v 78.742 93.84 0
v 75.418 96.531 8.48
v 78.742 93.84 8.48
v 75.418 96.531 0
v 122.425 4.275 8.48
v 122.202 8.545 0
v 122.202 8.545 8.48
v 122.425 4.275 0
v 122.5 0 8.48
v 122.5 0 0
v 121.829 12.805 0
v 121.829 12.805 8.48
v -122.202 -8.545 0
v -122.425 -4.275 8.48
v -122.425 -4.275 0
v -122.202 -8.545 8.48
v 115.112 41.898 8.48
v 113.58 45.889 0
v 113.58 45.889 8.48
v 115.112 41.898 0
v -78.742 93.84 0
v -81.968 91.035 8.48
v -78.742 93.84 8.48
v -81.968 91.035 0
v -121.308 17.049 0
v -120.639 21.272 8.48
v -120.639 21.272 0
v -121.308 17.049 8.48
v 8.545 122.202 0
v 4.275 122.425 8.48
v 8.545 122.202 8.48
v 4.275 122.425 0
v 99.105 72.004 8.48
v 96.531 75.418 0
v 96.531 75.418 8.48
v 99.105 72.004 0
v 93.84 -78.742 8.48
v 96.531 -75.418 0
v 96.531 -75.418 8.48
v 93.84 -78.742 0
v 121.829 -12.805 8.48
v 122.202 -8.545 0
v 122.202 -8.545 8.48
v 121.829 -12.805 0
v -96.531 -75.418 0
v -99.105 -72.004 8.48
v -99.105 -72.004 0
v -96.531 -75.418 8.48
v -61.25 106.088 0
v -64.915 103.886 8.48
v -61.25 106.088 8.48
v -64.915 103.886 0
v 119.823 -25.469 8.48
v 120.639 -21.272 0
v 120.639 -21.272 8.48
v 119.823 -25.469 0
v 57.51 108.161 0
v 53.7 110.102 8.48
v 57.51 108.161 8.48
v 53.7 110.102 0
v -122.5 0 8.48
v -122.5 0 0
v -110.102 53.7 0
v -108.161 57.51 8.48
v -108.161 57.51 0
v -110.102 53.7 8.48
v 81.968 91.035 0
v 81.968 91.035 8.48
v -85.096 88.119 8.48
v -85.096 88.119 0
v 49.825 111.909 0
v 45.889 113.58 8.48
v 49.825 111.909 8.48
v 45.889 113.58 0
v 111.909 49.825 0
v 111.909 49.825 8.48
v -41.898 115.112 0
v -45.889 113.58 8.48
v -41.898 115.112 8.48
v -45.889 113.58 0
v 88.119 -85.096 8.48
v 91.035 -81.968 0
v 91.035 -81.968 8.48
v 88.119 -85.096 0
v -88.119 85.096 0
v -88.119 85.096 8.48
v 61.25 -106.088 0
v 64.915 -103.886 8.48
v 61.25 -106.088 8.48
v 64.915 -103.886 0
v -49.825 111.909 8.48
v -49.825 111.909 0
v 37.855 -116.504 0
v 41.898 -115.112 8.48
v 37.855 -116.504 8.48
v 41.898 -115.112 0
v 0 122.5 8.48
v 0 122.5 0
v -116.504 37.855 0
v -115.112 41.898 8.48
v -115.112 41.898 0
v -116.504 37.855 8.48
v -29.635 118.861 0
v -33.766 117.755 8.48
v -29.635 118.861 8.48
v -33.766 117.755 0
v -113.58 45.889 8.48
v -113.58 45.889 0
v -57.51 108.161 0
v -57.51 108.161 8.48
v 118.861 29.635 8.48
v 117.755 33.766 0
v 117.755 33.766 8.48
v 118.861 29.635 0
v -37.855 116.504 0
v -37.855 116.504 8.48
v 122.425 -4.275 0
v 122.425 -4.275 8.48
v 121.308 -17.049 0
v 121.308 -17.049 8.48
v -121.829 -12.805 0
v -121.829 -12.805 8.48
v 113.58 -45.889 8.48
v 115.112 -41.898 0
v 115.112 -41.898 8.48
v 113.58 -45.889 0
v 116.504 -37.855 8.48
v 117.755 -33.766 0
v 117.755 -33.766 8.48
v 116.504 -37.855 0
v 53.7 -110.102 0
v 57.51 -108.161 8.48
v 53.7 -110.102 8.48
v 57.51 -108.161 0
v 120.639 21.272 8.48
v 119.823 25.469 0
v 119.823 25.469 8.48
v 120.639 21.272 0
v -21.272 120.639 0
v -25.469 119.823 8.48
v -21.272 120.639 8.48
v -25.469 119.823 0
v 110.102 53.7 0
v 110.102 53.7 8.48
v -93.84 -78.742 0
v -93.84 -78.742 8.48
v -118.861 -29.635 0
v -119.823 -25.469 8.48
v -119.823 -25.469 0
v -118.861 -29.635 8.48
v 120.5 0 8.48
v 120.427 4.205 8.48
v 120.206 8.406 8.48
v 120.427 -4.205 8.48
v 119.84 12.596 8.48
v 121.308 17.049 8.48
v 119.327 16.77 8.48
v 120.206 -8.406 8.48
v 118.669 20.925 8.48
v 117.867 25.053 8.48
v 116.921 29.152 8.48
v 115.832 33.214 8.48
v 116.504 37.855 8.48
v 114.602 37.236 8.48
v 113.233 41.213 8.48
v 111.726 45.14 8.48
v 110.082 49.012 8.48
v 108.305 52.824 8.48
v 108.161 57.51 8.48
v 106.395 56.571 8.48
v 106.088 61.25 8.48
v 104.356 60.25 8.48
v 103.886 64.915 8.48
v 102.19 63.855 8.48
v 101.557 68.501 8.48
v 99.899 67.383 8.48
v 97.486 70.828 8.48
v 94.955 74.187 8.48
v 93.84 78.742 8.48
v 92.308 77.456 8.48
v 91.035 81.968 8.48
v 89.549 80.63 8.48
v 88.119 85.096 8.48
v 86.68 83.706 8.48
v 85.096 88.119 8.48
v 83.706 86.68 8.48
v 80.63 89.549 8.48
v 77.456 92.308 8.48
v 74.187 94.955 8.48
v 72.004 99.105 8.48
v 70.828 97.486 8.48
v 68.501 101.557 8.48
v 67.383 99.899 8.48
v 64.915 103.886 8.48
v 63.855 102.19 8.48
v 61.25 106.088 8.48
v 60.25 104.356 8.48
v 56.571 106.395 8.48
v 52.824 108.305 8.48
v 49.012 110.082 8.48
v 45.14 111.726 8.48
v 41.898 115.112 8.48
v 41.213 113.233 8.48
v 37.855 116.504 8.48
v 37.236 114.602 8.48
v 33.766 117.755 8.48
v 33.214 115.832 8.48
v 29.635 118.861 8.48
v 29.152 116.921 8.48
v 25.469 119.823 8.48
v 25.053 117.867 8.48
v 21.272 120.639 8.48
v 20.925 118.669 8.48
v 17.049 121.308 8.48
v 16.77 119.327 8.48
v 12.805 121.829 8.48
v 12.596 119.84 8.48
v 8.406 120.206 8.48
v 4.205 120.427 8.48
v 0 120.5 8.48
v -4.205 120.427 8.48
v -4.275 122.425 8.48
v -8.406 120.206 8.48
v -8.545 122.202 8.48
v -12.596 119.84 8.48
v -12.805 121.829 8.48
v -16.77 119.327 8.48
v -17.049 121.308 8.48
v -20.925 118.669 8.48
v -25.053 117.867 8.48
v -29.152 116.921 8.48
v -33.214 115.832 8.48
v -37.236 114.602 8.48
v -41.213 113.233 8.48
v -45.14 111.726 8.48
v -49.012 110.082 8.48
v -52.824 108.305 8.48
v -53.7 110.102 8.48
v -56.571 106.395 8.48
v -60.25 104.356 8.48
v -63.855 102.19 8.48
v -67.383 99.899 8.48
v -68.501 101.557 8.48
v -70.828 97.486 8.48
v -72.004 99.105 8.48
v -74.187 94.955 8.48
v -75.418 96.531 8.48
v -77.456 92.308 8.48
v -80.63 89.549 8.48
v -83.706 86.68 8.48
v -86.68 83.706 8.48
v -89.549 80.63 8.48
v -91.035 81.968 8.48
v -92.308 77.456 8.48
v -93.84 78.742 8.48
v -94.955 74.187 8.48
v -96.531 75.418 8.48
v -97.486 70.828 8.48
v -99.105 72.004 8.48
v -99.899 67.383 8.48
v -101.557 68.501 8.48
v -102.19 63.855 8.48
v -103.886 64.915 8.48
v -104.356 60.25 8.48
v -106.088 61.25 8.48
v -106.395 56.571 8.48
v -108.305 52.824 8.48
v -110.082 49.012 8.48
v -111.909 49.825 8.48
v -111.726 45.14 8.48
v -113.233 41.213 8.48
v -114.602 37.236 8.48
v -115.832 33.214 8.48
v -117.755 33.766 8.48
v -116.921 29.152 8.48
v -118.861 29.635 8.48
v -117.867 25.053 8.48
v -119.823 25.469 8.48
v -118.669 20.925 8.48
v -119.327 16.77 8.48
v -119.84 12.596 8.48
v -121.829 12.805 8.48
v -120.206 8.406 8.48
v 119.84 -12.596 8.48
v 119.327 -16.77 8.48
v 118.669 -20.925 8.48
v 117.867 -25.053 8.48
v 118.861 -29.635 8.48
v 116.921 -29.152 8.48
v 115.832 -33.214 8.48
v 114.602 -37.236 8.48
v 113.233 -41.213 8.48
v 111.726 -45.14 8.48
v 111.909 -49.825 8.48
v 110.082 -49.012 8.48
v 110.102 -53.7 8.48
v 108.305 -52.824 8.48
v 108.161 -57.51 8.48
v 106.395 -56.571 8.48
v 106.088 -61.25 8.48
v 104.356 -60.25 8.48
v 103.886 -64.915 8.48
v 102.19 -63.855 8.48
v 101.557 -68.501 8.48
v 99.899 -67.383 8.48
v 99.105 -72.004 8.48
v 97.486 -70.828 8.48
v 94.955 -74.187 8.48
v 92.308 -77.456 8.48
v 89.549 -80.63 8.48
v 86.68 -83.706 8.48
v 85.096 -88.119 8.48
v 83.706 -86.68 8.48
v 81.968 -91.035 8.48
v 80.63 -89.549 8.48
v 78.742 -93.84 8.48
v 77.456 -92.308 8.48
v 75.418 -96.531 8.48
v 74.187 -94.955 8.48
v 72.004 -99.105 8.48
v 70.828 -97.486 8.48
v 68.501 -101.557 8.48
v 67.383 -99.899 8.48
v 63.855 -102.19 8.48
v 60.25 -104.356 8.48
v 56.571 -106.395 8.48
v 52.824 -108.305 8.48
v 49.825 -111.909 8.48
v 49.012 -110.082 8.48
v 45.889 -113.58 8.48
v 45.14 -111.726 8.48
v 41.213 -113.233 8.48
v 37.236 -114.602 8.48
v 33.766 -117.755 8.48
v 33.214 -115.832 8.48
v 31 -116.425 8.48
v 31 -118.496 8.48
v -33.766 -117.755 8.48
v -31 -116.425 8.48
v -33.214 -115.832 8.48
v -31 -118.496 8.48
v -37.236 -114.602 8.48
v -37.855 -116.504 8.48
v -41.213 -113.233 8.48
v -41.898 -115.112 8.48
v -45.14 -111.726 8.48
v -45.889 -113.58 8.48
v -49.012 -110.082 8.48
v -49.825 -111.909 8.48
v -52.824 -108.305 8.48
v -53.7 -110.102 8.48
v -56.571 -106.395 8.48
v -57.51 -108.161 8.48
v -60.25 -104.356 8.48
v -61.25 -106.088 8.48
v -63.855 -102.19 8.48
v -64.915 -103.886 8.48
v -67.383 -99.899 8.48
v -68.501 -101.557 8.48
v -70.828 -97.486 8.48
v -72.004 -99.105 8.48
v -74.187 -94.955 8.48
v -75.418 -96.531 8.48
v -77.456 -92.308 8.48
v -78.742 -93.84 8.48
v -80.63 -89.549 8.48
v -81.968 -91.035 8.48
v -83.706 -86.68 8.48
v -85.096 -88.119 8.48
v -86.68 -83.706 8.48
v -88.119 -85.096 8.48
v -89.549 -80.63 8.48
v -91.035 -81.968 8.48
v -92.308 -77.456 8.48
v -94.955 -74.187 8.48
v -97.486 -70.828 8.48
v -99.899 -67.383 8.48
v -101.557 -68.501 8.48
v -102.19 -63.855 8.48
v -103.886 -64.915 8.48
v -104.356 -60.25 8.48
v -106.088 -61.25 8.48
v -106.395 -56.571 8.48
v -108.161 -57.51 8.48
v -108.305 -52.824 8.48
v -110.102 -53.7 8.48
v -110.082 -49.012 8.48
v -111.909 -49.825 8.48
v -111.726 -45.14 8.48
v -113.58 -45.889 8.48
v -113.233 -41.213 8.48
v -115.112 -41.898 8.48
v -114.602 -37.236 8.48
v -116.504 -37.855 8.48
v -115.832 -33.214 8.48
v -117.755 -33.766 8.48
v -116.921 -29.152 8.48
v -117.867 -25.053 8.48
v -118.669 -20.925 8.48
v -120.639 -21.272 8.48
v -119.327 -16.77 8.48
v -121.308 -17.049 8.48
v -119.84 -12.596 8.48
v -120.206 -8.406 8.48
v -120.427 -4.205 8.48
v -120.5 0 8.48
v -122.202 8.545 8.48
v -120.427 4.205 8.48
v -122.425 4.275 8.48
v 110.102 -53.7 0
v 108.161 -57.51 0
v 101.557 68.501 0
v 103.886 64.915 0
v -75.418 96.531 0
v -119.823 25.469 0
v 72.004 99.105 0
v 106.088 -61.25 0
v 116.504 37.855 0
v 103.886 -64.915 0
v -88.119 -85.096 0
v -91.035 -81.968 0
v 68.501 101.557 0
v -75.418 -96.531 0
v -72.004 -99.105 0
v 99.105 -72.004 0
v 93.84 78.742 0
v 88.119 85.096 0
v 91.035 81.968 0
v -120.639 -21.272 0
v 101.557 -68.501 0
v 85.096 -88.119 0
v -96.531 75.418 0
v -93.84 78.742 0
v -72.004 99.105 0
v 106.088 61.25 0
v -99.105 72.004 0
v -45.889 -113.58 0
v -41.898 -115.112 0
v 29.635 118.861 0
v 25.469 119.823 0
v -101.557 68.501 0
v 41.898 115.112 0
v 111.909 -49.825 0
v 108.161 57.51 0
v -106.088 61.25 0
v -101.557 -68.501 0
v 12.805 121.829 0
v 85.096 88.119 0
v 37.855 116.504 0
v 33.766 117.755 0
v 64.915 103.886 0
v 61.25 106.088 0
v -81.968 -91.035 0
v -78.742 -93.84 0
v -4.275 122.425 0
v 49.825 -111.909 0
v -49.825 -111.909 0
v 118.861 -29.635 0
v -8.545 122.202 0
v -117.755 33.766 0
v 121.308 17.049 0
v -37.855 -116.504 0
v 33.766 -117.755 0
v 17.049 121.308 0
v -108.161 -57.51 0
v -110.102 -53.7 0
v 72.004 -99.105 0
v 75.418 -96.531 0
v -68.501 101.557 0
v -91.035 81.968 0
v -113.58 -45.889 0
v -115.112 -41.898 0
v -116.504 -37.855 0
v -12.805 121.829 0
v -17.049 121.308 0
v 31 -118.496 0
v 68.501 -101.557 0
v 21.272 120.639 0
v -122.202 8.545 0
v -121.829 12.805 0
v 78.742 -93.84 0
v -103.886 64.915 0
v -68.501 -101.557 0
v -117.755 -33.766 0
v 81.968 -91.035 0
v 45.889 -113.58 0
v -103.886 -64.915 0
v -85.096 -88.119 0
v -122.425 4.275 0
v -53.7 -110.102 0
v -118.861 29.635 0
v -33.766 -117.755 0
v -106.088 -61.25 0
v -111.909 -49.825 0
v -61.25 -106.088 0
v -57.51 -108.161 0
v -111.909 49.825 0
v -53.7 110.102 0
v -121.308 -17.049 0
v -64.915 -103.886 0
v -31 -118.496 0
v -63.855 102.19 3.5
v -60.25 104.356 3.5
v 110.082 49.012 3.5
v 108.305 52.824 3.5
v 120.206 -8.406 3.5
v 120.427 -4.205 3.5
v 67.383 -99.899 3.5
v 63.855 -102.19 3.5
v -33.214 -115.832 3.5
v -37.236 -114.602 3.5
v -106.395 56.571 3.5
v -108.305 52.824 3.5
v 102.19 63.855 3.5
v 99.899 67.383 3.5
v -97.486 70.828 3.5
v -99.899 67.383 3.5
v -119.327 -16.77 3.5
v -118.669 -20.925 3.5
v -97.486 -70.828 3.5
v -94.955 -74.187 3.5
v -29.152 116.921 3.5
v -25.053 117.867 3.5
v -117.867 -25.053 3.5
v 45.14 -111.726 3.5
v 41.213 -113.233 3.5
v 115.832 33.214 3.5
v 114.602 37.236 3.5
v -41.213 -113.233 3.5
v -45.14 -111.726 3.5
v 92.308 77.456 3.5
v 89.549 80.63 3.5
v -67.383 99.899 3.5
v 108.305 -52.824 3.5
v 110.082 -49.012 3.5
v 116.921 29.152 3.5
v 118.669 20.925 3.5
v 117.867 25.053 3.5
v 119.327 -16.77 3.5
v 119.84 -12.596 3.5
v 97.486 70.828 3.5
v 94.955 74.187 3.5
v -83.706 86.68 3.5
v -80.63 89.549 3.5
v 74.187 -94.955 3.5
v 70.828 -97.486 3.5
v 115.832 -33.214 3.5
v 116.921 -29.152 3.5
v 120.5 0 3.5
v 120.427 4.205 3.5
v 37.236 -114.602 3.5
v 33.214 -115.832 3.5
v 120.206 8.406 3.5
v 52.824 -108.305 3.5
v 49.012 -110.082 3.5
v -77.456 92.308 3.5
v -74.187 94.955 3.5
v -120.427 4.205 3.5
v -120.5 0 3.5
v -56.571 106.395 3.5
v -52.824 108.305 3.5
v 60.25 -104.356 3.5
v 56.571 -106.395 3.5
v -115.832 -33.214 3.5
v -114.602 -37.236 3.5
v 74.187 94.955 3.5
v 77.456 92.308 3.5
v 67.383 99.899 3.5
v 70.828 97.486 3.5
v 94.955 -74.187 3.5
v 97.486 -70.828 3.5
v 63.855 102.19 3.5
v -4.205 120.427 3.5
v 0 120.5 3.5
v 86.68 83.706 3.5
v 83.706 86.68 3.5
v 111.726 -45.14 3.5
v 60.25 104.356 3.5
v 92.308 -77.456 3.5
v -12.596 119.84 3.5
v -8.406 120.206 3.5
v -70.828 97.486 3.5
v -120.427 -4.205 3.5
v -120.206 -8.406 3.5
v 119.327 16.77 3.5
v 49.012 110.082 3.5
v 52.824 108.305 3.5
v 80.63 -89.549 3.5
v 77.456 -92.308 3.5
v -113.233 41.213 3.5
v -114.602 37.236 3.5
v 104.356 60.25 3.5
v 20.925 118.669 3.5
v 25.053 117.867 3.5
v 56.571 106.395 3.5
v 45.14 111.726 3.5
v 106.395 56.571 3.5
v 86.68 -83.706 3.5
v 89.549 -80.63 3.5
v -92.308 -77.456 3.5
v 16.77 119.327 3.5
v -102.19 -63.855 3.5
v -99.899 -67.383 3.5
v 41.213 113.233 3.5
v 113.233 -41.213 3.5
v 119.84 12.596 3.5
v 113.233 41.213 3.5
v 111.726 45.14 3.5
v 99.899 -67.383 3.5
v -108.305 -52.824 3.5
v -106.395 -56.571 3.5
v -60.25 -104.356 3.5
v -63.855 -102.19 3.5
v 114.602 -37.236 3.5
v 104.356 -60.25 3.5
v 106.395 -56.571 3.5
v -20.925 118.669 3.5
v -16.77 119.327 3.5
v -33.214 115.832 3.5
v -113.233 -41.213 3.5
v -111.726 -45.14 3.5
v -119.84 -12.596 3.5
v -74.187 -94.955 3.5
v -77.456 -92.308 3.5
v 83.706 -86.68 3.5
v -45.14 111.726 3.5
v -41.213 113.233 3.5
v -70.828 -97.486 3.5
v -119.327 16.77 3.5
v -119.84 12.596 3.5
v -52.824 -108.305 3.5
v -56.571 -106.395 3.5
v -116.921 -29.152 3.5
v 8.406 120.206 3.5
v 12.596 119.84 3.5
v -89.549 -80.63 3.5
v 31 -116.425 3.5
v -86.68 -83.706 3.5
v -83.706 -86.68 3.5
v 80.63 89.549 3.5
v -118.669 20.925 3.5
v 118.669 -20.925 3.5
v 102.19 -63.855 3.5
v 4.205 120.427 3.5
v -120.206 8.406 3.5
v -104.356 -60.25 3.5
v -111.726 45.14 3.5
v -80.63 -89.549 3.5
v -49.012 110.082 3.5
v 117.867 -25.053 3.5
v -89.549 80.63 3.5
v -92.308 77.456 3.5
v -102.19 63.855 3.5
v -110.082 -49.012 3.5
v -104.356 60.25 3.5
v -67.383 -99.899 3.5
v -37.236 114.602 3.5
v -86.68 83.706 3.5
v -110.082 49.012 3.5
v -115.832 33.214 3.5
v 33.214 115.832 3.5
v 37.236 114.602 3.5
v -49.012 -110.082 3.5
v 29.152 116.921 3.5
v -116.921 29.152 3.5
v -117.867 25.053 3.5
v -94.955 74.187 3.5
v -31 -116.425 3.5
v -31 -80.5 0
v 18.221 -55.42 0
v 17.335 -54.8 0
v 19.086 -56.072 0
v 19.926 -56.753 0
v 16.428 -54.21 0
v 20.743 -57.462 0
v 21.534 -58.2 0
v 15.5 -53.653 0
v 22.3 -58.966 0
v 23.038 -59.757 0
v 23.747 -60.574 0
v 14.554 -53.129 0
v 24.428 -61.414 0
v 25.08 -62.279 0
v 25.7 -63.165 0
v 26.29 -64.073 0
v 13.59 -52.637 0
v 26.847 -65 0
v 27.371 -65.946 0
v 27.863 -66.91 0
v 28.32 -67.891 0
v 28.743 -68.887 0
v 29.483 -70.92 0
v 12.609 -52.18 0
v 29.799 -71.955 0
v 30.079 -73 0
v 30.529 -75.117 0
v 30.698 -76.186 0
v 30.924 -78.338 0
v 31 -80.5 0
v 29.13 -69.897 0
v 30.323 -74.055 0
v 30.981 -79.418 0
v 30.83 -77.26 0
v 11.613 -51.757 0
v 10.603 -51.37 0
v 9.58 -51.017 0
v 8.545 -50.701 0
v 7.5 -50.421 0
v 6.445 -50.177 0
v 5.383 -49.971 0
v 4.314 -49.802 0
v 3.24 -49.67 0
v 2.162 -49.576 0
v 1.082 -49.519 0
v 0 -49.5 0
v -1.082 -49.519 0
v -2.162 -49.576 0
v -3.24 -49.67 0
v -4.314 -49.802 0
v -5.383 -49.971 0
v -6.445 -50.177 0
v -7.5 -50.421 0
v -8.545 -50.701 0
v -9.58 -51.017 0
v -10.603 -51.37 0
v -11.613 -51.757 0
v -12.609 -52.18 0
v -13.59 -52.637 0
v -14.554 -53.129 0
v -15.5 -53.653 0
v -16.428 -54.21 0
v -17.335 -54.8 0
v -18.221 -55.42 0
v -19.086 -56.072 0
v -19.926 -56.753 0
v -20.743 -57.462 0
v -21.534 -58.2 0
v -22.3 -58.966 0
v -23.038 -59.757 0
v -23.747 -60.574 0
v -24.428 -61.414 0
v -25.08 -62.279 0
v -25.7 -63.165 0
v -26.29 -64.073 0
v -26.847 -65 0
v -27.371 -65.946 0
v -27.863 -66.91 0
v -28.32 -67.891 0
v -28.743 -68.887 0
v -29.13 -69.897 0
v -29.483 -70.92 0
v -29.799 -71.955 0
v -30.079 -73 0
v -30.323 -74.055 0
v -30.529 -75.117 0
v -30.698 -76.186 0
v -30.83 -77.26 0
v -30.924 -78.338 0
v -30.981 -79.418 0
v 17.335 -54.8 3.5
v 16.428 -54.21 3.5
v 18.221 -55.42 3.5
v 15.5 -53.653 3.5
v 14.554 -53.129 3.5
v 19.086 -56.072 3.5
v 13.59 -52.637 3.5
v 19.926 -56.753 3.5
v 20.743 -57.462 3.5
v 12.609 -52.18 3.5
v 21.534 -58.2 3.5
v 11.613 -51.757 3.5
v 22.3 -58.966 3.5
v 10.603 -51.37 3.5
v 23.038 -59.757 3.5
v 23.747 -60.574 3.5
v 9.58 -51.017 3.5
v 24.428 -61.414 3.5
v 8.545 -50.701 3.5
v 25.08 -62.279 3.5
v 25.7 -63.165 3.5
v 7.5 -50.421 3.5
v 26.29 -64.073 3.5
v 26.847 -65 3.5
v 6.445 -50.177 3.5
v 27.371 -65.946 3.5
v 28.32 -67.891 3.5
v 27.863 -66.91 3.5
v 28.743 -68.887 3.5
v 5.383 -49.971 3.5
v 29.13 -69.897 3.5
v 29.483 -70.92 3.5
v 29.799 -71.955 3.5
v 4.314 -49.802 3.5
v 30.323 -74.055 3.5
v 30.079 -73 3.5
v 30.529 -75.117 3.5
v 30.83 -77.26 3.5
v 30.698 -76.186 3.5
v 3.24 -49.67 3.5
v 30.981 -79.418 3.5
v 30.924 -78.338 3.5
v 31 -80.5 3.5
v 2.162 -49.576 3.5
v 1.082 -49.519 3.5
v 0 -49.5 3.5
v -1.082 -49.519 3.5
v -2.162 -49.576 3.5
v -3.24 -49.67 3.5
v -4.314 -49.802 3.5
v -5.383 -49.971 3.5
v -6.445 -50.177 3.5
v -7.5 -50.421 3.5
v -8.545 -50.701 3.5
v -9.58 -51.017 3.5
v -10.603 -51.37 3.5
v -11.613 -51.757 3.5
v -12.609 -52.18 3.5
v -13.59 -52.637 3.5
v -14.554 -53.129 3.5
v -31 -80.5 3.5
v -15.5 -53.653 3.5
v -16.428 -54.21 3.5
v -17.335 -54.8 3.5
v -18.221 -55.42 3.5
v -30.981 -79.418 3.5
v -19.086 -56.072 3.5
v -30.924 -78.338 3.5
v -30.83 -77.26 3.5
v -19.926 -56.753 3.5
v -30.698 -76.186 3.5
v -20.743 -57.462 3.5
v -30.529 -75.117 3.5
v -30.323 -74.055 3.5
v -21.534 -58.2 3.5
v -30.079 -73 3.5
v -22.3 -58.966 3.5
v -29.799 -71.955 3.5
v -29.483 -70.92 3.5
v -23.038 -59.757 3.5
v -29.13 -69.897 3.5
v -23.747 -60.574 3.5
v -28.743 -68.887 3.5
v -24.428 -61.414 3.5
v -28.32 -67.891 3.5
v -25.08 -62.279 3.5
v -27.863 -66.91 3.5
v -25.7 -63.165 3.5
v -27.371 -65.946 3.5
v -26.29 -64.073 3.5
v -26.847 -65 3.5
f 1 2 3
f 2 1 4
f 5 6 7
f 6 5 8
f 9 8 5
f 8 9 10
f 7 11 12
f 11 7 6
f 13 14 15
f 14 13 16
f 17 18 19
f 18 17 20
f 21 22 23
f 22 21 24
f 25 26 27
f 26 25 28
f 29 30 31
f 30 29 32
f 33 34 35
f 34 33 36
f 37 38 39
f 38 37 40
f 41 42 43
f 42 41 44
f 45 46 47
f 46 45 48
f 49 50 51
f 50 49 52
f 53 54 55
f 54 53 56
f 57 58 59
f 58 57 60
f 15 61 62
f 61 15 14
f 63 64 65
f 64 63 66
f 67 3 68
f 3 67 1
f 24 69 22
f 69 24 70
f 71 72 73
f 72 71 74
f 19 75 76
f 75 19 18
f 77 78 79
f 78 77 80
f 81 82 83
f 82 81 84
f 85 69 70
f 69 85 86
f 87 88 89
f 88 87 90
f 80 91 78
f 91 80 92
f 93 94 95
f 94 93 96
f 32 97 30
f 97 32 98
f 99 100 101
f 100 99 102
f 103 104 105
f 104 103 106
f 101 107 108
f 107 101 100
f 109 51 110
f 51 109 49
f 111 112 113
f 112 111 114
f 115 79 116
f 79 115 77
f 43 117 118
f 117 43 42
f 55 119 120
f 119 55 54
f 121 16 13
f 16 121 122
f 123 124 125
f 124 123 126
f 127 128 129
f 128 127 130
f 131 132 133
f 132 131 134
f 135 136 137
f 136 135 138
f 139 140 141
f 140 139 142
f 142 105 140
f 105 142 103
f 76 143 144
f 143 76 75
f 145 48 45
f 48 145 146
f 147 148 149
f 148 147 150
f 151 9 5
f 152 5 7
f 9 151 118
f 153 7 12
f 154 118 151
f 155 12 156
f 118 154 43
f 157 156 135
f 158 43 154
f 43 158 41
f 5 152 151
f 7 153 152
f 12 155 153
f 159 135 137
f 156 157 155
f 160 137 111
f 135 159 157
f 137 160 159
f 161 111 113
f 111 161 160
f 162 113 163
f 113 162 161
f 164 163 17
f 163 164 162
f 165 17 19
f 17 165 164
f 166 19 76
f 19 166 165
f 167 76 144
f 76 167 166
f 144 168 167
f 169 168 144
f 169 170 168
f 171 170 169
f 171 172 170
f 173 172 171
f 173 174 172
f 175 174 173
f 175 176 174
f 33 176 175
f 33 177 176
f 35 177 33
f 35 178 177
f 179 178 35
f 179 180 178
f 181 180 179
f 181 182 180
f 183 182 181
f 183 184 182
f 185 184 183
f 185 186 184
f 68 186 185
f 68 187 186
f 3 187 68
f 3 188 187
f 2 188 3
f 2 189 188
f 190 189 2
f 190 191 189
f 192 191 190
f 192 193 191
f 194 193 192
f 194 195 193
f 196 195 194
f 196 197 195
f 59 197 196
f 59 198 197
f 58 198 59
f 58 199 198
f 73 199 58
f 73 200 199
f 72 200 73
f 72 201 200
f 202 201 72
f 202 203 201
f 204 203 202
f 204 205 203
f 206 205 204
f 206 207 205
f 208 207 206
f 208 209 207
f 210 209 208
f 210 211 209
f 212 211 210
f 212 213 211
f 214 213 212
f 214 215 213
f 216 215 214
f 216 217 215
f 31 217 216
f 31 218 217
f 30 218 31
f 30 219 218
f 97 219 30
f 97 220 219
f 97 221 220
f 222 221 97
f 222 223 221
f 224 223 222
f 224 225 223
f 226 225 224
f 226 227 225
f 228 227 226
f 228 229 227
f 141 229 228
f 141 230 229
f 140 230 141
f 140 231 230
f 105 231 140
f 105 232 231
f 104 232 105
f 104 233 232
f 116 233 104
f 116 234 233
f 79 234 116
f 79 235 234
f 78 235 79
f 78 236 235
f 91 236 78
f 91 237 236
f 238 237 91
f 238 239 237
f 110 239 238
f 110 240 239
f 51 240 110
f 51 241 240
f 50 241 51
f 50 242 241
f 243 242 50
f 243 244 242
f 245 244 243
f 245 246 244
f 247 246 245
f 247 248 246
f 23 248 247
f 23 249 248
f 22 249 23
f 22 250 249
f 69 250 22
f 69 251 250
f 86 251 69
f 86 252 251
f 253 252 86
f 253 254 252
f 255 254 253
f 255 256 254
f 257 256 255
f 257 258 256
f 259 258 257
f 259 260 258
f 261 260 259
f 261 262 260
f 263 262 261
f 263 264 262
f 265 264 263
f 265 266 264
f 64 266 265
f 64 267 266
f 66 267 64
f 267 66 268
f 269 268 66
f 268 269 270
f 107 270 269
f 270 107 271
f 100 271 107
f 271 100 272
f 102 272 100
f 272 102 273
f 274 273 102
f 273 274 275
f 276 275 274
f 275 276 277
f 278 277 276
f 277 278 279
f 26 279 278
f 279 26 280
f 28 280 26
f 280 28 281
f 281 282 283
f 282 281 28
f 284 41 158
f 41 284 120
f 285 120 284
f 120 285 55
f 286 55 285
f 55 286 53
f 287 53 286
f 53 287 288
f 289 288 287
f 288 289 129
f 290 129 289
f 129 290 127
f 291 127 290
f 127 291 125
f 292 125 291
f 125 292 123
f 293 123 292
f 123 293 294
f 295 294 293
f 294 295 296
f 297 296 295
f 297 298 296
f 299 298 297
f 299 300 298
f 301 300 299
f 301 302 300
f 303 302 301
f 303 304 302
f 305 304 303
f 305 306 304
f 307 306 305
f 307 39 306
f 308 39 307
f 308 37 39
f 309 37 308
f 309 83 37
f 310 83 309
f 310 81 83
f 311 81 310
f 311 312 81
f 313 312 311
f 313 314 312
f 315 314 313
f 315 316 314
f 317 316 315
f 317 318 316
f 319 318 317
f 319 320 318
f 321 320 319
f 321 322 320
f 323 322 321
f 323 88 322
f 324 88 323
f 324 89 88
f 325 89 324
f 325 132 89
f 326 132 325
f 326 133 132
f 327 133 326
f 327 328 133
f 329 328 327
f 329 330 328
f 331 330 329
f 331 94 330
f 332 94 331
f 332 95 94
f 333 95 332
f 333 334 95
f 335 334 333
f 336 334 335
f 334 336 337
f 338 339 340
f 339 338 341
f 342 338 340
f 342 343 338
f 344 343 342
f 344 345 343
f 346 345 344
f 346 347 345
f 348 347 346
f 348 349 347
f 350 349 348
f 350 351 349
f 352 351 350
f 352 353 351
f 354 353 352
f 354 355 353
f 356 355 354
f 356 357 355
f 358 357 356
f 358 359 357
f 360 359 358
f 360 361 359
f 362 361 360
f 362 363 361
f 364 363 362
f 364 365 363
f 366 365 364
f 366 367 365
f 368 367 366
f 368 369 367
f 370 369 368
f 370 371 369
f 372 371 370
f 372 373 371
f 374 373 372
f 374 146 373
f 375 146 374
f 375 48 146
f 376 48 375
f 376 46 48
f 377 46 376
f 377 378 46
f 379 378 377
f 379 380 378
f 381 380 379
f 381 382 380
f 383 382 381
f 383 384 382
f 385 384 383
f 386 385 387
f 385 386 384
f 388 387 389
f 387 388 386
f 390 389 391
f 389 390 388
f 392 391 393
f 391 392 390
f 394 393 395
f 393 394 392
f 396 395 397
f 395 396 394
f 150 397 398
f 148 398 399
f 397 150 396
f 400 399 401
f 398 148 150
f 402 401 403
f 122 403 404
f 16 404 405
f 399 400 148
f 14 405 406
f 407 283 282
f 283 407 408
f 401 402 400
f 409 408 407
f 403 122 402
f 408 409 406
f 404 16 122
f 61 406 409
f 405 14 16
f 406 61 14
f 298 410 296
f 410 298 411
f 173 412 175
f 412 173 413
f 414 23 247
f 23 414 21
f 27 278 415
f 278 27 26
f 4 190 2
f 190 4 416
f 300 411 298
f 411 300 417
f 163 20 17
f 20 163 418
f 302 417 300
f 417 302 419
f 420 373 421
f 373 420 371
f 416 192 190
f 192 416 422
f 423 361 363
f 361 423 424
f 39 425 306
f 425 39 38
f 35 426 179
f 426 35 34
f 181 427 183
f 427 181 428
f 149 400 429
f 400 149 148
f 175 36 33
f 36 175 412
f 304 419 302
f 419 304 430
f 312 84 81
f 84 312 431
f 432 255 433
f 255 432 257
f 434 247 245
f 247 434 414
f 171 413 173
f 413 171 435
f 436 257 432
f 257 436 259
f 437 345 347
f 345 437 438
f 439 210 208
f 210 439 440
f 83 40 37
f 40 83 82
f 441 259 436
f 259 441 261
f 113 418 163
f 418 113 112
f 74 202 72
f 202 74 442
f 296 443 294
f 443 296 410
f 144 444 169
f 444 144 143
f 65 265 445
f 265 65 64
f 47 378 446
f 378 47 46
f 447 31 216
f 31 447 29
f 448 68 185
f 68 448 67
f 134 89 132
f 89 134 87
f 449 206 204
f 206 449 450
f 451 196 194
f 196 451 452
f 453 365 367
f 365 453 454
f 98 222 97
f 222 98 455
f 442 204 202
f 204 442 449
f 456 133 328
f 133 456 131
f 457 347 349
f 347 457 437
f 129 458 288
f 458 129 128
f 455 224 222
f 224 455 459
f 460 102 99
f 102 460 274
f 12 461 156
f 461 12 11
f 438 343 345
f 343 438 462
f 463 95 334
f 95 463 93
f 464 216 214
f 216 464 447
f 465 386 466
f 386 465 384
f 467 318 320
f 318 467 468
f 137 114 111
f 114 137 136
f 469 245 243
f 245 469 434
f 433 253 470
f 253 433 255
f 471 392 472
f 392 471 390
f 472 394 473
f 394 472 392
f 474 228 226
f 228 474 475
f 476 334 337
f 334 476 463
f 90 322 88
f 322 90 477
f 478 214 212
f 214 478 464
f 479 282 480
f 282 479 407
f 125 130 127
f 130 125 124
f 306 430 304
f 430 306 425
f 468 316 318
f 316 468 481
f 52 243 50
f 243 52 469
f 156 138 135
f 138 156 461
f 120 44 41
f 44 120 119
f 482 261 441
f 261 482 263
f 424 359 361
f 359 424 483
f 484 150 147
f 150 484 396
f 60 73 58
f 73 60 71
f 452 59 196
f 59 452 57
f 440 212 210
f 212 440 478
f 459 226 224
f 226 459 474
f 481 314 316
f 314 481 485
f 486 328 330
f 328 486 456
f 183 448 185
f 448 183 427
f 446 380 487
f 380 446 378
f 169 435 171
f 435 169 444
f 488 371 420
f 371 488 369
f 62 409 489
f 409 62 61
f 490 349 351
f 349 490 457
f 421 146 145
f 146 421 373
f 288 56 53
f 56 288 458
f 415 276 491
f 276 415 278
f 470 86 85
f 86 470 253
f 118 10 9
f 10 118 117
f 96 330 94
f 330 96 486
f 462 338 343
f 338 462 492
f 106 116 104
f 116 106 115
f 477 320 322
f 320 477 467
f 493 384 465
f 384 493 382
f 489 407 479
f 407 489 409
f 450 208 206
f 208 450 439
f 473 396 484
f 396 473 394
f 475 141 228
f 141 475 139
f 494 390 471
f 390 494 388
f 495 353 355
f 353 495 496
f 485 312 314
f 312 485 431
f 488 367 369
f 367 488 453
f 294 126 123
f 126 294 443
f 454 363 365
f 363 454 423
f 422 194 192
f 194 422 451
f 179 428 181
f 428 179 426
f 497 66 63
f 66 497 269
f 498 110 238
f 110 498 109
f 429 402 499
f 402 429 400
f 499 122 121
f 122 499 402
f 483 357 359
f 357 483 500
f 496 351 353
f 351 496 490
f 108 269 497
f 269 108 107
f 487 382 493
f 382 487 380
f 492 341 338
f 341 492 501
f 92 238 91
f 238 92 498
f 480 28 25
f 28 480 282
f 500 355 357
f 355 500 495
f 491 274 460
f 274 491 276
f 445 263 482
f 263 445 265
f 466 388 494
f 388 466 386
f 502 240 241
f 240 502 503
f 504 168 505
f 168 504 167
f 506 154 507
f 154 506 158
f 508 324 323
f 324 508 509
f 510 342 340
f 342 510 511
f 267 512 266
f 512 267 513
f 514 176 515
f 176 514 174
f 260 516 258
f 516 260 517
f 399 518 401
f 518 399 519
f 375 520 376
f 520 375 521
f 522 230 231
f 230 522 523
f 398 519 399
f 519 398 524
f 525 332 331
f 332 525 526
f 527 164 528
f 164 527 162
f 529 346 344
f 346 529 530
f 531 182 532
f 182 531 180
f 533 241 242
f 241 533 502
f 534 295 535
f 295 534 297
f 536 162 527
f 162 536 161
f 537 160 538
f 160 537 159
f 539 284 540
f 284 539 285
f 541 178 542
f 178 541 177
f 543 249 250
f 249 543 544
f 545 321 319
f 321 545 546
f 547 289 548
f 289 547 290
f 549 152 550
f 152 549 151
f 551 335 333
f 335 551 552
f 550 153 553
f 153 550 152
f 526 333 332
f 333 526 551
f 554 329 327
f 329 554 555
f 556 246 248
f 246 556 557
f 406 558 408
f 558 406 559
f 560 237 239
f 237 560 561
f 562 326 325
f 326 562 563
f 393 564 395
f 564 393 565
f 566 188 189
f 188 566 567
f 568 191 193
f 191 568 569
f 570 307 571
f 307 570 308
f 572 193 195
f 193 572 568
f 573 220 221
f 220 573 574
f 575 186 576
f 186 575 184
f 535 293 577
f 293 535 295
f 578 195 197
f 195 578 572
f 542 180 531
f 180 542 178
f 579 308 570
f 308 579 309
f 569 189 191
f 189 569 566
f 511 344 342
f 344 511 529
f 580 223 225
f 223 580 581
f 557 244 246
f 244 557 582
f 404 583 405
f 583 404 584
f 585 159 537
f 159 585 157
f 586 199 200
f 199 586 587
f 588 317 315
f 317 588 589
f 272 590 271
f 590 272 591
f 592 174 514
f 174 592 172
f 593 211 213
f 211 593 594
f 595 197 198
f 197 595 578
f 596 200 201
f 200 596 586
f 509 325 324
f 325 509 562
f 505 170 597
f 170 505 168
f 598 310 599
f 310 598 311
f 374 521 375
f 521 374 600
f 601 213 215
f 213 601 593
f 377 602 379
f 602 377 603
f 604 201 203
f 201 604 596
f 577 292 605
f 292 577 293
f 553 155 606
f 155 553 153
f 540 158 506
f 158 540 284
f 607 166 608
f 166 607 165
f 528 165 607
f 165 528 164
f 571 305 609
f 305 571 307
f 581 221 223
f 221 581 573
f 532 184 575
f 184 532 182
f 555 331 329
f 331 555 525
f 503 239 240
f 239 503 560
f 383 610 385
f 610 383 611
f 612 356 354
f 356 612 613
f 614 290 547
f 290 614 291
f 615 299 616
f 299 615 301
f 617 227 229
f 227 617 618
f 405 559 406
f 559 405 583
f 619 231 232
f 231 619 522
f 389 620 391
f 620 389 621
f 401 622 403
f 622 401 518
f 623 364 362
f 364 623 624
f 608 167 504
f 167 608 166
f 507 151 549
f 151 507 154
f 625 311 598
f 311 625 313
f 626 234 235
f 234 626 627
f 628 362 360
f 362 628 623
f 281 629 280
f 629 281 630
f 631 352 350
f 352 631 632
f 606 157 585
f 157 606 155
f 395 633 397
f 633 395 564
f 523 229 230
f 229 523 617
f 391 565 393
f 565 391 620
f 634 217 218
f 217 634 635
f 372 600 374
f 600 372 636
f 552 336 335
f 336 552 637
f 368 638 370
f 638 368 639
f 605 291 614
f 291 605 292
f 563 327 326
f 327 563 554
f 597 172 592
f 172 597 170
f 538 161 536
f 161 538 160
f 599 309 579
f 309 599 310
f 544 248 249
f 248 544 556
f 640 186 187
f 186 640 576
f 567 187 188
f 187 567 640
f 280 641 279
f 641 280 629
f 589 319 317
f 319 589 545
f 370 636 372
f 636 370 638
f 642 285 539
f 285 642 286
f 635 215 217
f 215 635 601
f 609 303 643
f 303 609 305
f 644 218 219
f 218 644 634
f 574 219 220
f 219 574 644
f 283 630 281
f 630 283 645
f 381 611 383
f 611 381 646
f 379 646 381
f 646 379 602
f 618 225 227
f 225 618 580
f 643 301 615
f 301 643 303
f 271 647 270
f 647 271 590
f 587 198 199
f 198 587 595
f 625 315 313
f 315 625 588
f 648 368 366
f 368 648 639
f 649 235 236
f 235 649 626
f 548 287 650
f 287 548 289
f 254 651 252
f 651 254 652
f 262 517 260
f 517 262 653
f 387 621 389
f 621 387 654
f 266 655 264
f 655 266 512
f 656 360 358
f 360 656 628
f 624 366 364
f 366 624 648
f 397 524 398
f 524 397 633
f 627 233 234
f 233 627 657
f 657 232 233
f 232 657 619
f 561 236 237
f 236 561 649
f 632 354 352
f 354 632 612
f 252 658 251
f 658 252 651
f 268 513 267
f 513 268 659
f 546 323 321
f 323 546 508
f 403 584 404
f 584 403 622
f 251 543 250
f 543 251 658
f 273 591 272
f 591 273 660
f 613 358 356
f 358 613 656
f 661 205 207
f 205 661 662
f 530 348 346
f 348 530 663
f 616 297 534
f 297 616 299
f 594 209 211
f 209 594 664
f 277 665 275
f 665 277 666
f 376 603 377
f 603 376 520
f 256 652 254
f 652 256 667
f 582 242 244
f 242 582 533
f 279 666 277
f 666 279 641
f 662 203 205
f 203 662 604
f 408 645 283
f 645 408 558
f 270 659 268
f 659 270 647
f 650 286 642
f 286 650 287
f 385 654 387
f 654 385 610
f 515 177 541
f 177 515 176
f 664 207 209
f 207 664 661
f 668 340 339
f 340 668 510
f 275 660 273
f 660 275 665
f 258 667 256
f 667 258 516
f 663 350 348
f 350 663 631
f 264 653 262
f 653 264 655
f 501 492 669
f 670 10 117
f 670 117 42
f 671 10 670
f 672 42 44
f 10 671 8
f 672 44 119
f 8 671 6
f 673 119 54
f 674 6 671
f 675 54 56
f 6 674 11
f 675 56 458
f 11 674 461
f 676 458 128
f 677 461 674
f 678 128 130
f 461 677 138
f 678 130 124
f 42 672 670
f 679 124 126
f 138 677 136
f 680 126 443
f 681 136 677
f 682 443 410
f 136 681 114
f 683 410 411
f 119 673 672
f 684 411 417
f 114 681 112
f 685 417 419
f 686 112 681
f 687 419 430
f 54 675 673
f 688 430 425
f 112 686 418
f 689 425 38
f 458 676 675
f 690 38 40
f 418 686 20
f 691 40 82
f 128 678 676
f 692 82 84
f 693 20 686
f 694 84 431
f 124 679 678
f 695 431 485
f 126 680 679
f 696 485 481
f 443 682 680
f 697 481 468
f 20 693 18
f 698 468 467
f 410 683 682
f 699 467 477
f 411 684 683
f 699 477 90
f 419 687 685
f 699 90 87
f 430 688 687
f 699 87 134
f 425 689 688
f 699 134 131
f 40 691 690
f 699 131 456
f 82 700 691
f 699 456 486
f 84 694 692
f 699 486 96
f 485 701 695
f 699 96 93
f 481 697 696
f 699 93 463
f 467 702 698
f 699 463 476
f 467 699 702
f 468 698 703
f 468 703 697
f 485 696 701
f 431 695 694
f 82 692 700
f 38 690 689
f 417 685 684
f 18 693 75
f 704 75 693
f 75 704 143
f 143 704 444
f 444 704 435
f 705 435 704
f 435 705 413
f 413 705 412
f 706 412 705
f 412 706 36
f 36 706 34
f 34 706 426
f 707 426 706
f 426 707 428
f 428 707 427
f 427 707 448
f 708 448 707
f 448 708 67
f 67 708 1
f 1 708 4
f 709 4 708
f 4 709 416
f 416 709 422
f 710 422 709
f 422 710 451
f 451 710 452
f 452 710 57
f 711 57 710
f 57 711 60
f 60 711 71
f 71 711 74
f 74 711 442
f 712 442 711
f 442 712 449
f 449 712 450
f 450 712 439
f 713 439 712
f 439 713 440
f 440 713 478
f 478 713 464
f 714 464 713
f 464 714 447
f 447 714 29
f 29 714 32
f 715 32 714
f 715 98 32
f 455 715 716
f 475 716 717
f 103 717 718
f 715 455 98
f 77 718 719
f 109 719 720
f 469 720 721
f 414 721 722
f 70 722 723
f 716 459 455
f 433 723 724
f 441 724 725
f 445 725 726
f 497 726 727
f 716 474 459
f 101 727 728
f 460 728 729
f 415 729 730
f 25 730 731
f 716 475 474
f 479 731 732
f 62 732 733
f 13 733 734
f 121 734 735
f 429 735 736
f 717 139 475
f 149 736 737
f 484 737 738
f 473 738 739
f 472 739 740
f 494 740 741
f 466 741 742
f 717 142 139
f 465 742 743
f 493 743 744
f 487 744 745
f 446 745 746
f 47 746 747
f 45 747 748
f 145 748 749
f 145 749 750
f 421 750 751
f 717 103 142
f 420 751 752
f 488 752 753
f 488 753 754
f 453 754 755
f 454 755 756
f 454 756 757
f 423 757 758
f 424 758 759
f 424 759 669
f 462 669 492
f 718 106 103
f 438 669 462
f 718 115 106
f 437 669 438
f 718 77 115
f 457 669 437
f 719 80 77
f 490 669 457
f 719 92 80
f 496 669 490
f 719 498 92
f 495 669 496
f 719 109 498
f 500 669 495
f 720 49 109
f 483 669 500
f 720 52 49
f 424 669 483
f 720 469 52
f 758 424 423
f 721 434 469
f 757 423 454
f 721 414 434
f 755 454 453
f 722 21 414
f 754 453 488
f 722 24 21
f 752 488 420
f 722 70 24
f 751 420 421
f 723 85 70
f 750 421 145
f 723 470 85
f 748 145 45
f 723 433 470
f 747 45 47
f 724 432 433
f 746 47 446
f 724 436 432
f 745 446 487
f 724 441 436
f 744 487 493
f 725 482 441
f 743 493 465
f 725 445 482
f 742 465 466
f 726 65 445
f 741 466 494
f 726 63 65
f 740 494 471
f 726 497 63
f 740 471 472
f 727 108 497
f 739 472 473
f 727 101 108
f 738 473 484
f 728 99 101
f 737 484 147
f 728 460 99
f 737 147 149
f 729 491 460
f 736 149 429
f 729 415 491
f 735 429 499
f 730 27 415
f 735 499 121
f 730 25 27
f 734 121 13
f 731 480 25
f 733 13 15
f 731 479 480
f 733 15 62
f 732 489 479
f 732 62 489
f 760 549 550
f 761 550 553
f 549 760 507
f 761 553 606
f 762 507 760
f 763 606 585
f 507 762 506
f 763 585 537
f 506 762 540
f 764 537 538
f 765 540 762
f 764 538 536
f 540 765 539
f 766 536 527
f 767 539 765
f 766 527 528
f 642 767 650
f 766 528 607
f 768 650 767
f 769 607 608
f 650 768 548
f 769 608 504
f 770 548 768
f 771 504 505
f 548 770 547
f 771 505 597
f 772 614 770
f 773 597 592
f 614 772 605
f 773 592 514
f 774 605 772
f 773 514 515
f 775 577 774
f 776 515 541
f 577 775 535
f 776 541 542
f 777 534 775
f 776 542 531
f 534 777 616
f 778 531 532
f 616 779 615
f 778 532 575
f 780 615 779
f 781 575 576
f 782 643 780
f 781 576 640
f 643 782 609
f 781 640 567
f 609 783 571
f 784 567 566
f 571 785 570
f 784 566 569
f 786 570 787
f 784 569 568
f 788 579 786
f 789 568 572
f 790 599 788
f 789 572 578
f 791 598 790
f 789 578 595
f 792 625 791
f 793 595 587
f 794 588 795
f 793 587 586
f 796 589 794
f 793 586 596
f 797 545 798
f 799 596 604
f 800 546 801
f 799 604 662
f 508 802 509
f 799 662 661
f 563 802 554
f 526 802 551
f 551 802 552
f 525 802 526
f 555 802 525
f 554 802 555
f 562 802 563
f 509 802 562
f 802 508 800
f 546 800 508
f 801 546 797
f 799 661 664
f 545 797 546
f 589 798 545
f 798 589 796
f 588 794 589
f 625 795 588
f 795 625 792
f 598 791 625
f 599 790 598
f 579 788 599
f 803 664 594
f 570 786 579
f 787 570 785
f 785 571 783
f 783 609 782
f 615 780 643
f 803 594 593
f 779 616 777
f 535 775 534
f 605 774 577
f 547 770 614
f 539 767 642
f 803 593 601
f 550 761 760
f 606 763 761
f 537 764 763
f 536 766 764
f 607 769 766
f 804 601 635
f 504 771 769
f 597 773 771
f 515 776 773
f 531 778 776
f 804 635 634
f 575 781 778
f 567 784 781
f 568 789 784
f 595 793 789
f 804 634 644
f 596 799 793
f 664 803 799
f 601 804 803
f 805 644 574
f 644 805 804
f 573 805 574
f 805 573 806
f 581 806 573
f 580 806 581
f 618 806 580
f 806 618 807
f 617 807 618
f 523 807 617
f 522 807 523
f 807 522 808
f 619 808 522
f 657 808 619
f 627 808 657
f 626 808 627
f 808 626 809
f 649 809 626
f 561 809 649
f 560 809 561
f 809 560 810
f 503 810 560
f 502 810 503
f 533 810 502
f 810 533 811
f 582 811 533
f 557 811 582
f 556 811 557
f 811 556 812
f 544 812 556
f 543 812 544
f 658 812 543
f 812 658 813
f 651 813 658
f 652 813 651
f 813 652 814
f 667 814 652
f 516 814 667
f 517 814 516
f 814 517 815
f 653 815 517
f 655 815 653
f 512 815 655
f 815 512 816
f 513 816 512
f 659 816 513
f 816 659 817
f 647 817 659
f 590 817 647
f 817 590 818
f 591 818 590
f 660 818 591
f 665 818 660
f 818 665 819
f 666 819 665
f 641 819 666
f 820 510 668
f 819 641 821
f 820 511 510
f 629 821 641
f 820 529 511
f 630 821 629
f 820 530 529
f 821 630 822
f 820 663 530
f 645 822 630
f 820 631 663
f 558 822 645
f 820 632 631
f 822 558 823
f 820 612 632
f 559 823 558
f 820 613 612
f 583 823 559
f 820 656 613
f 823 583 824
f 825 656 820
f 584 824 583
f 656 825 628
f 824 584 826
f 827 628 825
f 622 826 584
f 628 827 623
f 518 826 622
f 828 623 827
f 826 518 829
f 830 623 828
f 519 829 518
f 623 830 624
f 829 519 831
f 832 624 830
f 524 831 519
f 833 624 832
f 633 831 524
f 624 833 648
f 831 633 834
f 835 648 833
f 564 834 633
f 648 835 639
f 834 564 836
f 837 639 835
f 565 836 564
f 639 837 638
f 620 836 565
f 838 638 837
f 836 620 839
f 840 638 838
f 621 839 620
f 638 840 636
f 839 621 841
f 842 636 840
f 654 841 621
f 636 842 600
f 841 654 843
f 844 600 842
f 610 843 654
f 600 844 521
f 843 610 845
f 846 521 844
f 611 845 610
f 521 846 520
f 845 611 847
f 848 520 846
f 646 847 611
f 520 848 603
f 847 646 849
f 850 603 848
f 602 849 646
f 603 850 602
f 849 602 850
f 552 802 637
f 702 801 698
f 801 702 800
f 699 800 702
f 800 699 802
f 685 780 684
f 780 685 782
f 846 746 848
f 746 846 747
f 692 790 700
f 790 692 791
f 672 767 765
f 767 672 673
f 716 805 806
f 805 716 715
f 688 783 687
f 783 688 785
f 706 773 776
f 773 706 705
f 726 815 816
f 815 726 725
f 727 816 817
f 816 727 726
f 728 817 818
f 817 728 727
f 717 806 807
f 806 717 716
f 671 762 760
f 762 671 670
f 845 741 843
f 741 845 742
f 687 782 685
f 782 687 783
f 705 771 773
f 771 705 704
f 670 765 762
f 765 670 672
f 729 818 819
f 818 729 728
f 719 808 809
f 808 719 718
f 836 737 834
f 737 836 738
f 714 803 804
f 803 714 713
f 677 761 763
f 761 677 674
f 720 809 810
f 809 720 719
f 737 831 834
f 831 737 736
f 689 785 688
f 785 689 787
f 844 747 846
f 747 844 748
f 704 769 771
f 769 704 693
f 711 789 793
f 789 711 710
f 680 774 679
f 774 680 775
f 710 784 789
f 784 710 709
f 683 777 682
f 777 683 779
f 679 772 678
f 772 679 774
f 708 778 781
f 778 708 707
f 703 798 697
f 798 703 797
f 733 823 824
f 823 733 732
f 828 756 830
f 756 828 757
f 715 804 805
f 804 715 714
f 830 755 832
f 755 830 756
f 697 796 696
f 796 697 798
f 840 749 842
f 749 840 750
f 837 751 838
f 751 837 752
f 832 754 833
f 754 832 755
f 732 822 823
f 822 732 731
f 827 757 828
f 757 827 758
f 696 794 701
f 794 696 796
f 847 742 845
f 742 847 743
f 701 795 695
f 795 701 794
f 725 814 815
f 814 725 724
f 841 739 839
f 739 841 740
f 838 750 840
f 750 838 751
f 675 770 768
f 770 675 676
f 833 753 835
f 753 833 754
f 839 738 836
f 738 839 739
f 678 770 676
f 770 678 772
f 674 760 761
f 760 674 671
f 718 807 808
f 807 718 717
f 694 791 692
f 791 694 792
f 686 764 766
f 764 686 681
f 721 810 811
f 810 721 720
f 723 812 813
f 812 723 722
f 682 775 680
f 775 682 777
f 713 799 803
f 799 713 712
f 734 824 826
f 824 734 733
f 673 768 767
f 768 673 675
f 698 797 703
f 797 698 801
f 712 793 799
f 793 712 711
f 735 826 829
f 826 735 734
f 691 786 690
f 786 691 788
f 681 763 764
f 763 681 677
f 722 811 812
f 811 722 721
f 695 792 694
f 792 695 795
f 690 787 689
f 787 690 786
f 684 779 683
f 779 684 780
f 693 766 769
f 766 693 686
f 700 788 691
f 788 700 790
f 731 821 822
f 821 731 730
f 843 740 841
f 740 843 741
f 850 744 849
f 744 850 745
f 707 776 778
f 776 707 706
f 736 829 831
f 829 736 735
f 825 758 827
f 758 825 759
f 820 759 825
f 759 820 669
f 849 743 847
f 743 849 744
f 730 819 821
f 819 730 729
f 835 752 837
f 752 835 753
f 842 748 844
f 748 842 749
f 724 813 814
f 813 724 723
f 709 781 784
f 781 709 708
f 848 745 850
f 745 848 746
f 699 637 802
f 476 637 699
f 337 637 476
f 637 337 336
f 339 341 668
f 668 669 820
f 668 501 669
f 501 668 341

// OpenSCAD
/*
Parametric Sous Vide Pot Lid

The entered pot diameter is the inside diameter of the downward lip. The lip
therefore wraps around the outside of the pot, and the finished lid diameter is:

    pot_diameter + (2 * lip_thickness)

The sous vide opening is a U-shaped slot: a round end joined to a straight
channel that opens through the edge of the lid.
*/

/* [Pot and Lid] */

// Outside diameter of the pot where the lip fits (mm).
pot_diameter = 241; // [100:1:500]

// Radial thickness of the downward lip (mm).
lip_thickness = 2; // [1:0.1:10]

// Distance the lip extends below the lid (mm).
lip_height = 5; // [1:0.5:30]

// Thickness of the flat lid plate (mm).
lid_thickness = 3.5; // [1:0.1:15]

/* [Sous Vide Opening] */

// Diameter (and channel width) of the sous vide cutout (mm).
sous_vide_diameter = 62; // [20:0.5:150]

// Distance from the finished lid edge to the center of the round cutout (mm).
sous_vide_edge_offset = 42; // [1:0.5:150]

/* [Print Quality] */

// Number of facets used for circles. Higher values render more smoothly.
circle_facets = 180; // [48:12:360]

/* [Hidden] */

$fn = circle_facets;
epsilon = 0.02;

pot_radius = pot_diameter / 2;
outer_radius = pot_radius + lip_thickness;
cutout_radius = sous_vide_diameter / 2;
cutout_center_y = -outer_radius + sous_vide_edge_offset;
total_height = lip_height + lid_thickness;

assert(pot_diameter > 0, "Pot diameter must be greater than zero.");
assert(lip_thickness > 0, "Lip thickness must be greater than zero.");
assert(lip_height > 0, "Lip height must be greater than zero.");
assert(lid_thickness > 0, "Lid thickness must be greater than zero.");
assert(sous_vide_diameter > 0, "Sous vide diameter must be greater than zero.");
assert(sous_vide_edge_offset > 0,
       "Sous vide edge offset must be greater than zero.");
assert(sous_vide_edge_offset + cutout_radius < (2 * outer_radius),
       "Sous vide opening extends beyond the opposite side of the lid.");

module lid_and_lip() {
    union() {
        // Flat cover sits directly on the build plate for printing.
        cylinder(h = lid_thickness, r = outer_radius);

        // The finished lid's downward skirt is printed facing upward. Its
        // inner face matches the entered pot diameter.
        translate([0, 0, lid_thickness - epsilon])
        difference() {
            cylinder(h = lip_height, r = outer_radius);
            translate([0, 0, -epsilon])
                cylinder(h = lip_height + (2 * epsilon), r = pot_radius);
        }
    }
}

module sous_vide_cutout() {
    // Circular closed end of the U-shaped opening.
    translate([0, cutout_center_y, -epsilon])
        cylinder(h = total_height + (2 * epsilon), r = cutout_radius);

    // Same-width channel from the circle center through the near edge.
    translate([
        -cutout_radius,
        -outer_radius - epsilon,
        -epsilon
    ])
        cube([
            sous_vide_diameter,
            cutout_center_y + outer_radius + epsilon,
            total_height + (2 * epsilon)
        ]);
}

difference() {
    lid_and_lip();
    sous_vide_cutout();
}
